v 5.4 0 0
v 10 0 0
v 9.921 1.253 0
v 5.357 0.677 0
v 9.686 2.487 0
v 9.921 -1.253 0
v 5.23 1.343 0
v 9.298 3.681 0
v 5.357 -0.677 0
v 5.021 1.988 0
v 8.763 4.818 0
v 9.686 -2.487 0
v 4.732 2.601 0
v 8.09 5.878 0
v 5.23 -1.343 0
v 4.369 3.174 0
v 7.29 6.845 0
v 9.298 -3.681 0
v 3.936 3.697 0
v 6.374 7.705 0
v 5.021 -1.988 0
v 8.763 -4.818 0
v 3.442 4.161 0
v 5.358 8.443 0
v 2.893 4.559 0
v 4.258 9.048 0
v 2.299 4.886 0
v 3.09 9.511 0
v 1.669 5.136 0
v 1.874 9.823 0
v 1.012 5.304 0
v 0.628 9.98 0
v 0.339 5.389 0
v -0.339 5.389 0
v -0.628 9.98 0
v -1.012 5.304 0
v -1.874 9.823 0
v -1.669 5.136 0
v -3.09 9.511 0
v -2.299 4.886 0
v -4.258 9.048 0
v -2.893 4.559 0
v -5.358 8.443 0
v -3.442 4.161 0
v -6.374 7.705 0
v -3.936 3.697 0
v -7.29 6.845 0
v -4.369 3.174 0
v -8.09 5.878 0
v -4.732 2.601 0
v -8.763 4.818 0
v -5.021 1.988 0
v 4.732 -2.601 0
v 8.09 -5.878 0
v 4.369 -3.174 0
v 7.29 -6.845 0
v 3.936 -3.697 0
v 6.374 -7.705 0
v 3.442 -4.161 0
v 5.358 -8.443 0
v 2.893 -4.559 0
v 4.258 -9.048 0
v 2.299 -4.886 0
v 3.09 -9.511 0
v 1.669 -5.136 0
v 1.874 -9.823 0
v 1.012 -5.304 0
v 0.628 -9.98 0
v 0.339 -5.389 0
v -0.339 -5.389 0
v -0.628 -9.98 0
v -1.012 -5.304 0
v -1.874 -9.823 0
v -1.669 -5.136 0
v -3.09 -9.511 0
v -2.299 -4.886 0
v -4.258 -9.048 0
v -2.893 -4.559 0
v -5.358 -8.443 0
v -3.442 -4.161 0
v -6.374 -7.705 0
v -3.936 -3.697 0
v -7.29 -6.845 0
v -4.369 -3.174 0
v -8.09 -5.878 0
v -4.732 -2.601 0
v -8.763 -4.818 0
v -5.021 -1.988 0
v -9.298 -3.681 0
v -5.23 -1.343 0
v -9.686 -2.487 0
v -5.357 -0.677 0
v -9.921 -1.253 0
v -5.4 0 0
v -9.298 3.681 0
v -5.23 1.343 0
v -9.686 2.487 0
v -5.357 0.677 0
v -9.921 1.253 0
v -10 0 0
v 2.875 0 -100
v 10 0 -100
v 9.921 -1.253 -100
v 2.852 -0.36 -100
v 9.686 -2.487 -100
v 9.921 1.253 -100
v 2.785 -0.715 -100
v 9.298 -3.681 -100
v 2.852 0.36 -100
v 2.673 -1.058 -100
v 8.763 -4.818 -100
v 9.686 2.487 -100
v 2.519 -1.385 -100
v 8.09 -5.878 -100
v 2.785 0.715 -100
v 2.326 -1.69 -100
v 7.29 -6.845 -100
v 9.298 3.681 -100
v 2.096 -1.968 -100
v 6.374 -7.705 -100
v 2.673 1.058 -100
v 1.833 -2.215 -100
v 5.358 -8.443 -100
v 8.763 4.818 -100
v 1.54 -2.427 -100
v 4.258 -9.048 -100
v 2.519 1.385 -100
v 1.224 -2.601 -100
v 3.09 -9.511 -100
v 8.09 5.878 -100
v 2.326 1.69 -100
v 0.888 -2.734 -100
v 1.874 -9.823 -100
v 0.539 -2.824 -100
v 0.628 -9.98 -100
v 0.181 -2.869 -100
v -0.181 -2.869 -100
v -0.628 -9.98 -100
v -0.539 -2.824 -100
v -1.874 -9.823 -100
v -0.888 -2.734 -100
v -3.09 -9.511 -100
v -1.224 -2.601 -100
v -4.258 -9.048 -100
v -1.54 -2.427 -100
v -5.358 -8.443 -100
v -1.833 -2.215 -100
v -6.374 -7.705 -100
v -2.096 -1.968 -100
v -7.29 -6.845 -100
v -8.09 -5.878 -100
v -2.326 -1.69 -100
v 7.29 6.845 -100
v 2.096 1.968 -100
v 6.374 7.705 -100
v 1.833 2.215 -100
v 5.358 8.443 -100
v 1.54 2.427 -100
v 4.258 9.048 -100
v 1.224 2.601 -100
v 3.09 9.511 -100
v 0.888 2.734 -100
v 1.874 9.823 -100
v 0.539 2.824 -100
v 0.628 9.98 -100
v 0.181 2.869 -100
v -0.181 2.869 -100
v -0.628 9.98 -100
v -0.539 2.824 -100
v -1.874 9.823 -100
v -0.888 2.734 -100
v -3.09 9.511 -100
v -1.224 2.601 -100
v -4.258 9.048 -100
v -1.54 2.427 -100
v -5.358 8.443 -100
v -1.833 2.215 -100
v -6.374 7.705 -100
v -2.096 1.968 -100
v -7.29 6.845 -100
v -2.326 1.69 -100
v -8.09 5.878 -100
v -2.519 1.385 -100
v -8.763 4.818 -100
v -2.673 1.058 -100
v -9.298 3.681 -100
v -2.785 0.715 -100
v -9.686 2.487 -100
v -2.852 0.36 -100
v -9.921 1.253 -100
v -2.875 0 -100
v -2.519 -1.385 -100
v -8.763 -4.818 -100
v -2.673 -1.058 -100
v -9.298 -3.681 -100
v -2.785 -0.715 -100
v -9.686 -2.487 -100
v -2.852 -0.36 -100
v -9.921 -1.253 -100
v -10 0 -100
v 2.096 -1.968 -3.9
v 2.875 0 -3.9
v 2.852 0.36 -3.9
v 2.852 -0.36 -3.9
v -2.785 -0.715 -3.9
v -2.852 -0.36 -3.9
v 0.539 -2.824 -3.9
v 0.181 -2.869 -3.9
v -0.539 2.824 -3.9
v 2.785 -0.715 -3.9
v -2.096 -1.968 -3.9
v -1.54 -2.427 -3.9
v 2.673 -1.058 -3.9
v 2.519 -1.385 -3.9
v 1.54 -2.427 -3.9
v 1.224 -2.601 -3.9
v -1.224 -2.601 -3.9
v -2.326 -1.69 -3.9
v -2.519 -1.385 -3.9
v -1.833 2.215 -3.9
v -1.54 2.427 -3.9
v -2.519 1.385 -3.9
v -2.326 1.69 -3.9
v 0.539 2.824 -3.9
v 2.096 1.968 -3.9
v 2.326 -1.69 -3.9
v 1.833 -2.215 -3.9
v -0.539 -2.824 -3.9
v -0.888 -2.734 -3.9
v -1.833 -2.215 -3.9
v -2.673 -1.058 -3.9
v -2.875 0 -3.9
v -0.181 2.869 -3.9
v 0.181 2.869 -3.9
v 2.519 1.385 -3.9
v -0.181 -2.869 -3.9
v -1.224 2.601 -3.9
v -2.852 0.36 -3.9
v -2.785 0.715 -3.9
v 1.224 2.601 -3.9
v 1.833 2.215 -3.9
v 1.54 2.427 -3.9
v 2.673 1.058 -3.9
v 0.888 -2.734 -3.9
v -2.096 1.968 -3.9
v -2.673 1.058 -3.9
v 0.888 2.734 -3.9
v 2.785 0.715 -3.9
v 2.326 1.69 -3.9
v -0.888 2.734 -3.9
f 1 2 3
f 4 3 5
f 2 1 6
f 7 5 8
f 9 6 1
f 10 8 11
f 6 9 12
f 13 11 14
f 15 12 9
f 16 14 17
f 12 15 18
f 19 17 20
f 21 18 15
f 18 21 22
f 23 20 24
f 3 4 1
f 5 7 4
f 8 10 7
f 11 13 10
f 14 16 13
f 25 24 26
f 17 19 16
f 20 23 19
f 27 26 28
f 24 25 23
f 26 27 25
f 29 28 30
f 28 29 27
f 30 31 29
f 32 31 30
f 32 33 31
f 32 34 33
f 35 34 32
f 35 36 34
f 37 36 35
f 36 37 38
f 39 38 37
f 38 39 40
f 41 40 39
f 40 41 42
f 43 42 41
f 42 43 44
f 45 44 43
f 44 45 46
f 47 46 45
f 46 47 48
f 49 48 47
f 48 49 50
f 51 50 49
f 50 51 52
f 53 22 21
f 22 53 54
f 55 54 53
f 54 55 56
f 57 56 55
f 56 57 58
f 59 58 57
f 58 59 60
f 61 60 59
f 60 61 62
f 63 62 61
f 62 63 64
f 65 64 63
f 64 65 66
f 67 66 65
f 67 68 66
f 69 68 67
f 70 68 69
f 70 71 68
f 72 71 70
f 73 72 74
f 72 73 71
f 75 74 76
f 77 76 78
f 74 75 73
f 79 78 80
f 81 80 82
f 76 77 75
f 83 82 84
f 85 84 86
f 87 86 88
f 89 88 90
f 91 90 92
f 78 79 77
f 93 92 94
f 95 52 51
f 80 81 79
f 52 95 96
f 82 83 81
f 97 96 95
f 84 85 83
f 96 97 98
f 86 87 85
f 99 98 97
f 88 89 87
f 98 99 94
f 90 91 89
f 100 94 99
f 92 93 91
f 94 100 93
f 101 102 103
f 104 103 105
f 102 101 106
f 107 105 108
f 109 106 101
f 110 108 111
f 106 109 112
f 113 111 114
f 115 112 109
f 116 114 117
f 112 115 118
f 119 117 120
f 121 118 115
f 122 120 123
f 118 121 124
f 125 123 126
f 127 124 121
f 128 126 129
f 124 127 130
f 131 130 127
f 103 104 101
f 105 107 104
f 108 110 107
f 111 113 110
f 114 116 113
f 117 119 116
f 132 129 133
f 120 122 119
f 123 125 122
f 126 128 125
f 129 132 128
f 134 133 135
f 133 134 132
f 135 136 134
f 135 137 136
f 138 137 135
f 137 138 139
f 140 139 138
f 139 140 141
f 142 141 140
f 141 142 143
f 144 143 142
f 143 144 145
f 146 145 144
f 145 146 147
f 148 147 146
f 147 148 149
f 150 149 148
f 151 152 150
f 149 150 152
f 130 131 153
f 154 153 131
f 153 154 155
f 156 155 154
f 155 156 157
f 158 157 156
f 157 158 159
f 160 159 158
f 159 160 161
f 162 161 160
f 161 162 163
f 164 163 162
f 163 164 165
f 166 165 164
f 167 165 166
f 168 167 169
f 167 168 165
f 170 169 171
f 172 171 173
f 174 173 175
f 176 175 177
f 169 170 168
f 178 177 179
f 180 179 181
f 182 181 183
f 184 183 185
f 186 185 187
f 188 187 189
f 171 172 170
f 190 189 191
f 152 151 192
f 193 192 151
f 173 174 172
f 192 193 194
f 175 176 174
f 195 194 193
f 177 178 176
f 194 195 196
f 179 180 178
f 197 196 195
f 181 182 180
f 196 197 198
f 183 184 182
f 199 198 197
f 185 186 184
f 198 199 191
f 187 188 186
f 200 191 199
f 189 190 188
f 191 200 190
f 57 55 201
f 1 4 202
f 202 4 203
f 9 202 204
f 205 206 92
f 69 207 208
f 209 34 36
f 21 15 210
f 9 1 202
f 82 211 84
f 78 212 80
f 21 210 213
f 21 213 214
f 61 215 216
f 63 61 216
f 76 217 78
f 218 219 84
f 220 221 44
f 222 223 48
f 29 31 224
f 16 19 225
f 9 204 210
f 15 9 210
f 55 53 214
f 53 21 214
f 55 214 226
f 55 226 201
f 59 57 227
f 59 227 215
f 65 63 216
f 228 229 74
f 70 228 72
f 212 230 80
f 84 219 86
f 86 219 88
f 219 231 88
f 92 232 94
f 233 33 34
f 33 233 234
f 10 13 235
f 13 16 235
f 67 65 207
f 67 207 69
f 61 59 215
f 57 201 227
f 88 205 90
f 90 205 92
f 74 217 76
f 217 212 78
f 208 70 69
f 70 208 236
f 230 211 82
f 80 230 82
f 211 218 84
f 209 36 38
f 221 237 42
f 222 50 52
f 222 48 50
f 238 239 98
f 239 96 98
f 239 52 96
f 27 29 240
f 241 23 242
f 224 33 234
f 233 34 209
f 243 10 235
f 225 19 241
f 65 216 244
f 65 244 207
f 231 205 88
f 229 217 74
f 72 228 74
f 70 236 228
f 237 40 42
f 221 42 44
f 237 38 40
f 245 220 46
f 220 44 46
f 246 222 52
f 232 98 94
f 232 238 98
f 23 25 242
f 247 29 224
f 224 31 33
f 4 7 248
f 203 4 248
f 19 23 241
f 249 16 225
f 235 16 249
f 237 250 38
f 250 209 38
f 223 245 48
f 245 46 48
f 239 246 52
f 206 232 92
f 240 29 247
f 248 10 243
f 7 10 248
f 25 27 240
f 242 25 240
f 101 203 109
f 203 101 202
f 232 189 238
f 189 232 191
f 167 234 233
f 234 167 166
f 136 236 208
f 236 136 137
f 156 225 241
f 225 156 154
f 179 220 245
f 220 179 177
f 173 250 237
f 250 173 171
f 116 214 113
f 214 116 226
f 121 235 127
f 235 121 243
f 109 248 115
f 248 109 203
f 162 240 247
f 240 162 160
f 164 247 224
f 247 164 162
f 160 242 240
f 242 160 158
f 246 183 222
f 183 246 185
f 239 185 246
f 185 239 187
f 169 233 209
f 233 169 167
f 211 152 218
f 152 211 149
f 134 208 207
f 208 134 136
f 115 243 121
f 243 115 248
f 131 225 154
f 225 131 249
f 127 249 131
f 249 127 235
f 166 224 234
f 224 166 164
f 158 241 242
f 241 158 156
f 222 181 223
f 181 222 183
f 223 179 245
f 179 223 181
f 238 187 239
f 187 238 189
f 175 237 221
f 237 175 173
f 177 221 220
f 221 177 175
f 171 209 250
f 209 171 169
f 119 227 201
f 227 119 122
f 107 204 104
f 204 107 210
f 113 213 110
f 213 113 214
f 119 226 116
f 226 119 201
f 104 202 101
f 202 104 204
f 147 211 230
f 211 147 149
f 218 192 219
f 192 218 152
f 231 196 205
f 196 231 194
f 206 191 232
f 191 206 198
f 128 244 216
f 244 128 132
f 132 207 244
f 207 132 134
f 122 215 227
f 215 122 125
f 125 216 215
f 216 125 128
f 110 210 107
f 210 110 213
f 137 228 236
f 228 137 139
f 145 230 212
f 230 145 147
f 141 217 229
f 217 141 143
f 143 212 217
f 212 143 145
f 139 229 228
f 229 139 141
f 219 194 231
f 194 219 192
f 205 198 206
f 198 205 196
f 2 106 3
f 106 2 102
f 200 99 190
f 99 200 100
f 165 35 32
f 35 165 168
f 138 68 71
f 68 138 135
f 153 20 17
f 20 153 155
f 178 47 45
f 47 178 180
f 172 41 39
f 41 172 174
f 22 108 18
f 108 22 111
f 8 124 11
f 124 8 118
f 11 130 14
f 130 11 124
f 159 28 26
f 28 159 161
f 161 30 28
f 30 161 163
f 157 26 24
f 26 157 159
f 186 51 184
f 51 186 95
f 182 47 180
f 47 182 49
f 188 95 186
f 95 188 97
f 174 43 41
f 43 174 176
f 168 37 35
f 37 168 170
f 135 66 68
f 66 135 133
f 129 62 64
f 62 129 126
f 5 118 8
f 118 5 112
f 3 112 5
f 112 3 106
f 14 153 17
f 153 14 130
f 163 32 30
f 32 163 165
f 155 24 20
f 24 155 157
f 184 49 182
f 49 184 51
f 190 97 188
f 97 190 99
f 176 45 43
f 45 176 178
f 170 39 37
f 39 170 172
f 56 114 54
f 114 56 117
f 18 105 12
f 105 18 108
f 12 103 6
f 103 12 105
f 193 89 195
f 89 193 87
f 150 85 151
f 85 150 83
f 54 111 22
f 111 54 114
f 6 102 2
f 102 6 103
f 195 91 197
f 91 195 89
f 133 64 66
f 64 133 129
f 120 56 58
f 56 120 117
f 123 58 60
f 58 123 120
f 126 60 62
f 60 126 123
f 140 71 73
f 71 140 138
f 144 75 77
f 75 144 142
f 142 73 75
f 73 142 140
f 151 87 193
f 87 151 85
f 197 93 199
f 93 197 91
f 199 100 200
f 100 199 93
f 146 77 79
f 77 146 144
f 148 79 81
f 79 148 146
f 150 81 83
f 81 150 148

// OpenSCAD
$fn = 50;


difference() {
	union() {
		translate(v = [0, 0, -100.0000000000]) {
			cylinder(h = 100, r = 10.0000000000);
		}
		cylinder(h = 0, r = 13.0000000000);
	}
	union() {
		translate(v = [0, 0, 0]) {
			rotate(a = [0, 0, 0]) {
				difference() {
					union() {
						#translate(v = [0, 0, -100.0000000000]) {
							cylinder(h = 100, r = 2.6000000000);
						}
						#translate(v = [0, 0, -3.9000000000]) {
							cylinder(h = 3.9000000000, r = 10.0000000000, r1 = 2.8750000000, r2 = 5.4000000000);
						}
						#translate(v = [0, 0, -100.0000000000]) {
							cylinder(h = 100, r = 2.8750000000);
						}
						#translate(v = [0, 0, -100.0000000000]) {
							cylinder(h = 100, r = 2.6000000000);
						}
					}
					union();
				}
			}
		}
	}
}
